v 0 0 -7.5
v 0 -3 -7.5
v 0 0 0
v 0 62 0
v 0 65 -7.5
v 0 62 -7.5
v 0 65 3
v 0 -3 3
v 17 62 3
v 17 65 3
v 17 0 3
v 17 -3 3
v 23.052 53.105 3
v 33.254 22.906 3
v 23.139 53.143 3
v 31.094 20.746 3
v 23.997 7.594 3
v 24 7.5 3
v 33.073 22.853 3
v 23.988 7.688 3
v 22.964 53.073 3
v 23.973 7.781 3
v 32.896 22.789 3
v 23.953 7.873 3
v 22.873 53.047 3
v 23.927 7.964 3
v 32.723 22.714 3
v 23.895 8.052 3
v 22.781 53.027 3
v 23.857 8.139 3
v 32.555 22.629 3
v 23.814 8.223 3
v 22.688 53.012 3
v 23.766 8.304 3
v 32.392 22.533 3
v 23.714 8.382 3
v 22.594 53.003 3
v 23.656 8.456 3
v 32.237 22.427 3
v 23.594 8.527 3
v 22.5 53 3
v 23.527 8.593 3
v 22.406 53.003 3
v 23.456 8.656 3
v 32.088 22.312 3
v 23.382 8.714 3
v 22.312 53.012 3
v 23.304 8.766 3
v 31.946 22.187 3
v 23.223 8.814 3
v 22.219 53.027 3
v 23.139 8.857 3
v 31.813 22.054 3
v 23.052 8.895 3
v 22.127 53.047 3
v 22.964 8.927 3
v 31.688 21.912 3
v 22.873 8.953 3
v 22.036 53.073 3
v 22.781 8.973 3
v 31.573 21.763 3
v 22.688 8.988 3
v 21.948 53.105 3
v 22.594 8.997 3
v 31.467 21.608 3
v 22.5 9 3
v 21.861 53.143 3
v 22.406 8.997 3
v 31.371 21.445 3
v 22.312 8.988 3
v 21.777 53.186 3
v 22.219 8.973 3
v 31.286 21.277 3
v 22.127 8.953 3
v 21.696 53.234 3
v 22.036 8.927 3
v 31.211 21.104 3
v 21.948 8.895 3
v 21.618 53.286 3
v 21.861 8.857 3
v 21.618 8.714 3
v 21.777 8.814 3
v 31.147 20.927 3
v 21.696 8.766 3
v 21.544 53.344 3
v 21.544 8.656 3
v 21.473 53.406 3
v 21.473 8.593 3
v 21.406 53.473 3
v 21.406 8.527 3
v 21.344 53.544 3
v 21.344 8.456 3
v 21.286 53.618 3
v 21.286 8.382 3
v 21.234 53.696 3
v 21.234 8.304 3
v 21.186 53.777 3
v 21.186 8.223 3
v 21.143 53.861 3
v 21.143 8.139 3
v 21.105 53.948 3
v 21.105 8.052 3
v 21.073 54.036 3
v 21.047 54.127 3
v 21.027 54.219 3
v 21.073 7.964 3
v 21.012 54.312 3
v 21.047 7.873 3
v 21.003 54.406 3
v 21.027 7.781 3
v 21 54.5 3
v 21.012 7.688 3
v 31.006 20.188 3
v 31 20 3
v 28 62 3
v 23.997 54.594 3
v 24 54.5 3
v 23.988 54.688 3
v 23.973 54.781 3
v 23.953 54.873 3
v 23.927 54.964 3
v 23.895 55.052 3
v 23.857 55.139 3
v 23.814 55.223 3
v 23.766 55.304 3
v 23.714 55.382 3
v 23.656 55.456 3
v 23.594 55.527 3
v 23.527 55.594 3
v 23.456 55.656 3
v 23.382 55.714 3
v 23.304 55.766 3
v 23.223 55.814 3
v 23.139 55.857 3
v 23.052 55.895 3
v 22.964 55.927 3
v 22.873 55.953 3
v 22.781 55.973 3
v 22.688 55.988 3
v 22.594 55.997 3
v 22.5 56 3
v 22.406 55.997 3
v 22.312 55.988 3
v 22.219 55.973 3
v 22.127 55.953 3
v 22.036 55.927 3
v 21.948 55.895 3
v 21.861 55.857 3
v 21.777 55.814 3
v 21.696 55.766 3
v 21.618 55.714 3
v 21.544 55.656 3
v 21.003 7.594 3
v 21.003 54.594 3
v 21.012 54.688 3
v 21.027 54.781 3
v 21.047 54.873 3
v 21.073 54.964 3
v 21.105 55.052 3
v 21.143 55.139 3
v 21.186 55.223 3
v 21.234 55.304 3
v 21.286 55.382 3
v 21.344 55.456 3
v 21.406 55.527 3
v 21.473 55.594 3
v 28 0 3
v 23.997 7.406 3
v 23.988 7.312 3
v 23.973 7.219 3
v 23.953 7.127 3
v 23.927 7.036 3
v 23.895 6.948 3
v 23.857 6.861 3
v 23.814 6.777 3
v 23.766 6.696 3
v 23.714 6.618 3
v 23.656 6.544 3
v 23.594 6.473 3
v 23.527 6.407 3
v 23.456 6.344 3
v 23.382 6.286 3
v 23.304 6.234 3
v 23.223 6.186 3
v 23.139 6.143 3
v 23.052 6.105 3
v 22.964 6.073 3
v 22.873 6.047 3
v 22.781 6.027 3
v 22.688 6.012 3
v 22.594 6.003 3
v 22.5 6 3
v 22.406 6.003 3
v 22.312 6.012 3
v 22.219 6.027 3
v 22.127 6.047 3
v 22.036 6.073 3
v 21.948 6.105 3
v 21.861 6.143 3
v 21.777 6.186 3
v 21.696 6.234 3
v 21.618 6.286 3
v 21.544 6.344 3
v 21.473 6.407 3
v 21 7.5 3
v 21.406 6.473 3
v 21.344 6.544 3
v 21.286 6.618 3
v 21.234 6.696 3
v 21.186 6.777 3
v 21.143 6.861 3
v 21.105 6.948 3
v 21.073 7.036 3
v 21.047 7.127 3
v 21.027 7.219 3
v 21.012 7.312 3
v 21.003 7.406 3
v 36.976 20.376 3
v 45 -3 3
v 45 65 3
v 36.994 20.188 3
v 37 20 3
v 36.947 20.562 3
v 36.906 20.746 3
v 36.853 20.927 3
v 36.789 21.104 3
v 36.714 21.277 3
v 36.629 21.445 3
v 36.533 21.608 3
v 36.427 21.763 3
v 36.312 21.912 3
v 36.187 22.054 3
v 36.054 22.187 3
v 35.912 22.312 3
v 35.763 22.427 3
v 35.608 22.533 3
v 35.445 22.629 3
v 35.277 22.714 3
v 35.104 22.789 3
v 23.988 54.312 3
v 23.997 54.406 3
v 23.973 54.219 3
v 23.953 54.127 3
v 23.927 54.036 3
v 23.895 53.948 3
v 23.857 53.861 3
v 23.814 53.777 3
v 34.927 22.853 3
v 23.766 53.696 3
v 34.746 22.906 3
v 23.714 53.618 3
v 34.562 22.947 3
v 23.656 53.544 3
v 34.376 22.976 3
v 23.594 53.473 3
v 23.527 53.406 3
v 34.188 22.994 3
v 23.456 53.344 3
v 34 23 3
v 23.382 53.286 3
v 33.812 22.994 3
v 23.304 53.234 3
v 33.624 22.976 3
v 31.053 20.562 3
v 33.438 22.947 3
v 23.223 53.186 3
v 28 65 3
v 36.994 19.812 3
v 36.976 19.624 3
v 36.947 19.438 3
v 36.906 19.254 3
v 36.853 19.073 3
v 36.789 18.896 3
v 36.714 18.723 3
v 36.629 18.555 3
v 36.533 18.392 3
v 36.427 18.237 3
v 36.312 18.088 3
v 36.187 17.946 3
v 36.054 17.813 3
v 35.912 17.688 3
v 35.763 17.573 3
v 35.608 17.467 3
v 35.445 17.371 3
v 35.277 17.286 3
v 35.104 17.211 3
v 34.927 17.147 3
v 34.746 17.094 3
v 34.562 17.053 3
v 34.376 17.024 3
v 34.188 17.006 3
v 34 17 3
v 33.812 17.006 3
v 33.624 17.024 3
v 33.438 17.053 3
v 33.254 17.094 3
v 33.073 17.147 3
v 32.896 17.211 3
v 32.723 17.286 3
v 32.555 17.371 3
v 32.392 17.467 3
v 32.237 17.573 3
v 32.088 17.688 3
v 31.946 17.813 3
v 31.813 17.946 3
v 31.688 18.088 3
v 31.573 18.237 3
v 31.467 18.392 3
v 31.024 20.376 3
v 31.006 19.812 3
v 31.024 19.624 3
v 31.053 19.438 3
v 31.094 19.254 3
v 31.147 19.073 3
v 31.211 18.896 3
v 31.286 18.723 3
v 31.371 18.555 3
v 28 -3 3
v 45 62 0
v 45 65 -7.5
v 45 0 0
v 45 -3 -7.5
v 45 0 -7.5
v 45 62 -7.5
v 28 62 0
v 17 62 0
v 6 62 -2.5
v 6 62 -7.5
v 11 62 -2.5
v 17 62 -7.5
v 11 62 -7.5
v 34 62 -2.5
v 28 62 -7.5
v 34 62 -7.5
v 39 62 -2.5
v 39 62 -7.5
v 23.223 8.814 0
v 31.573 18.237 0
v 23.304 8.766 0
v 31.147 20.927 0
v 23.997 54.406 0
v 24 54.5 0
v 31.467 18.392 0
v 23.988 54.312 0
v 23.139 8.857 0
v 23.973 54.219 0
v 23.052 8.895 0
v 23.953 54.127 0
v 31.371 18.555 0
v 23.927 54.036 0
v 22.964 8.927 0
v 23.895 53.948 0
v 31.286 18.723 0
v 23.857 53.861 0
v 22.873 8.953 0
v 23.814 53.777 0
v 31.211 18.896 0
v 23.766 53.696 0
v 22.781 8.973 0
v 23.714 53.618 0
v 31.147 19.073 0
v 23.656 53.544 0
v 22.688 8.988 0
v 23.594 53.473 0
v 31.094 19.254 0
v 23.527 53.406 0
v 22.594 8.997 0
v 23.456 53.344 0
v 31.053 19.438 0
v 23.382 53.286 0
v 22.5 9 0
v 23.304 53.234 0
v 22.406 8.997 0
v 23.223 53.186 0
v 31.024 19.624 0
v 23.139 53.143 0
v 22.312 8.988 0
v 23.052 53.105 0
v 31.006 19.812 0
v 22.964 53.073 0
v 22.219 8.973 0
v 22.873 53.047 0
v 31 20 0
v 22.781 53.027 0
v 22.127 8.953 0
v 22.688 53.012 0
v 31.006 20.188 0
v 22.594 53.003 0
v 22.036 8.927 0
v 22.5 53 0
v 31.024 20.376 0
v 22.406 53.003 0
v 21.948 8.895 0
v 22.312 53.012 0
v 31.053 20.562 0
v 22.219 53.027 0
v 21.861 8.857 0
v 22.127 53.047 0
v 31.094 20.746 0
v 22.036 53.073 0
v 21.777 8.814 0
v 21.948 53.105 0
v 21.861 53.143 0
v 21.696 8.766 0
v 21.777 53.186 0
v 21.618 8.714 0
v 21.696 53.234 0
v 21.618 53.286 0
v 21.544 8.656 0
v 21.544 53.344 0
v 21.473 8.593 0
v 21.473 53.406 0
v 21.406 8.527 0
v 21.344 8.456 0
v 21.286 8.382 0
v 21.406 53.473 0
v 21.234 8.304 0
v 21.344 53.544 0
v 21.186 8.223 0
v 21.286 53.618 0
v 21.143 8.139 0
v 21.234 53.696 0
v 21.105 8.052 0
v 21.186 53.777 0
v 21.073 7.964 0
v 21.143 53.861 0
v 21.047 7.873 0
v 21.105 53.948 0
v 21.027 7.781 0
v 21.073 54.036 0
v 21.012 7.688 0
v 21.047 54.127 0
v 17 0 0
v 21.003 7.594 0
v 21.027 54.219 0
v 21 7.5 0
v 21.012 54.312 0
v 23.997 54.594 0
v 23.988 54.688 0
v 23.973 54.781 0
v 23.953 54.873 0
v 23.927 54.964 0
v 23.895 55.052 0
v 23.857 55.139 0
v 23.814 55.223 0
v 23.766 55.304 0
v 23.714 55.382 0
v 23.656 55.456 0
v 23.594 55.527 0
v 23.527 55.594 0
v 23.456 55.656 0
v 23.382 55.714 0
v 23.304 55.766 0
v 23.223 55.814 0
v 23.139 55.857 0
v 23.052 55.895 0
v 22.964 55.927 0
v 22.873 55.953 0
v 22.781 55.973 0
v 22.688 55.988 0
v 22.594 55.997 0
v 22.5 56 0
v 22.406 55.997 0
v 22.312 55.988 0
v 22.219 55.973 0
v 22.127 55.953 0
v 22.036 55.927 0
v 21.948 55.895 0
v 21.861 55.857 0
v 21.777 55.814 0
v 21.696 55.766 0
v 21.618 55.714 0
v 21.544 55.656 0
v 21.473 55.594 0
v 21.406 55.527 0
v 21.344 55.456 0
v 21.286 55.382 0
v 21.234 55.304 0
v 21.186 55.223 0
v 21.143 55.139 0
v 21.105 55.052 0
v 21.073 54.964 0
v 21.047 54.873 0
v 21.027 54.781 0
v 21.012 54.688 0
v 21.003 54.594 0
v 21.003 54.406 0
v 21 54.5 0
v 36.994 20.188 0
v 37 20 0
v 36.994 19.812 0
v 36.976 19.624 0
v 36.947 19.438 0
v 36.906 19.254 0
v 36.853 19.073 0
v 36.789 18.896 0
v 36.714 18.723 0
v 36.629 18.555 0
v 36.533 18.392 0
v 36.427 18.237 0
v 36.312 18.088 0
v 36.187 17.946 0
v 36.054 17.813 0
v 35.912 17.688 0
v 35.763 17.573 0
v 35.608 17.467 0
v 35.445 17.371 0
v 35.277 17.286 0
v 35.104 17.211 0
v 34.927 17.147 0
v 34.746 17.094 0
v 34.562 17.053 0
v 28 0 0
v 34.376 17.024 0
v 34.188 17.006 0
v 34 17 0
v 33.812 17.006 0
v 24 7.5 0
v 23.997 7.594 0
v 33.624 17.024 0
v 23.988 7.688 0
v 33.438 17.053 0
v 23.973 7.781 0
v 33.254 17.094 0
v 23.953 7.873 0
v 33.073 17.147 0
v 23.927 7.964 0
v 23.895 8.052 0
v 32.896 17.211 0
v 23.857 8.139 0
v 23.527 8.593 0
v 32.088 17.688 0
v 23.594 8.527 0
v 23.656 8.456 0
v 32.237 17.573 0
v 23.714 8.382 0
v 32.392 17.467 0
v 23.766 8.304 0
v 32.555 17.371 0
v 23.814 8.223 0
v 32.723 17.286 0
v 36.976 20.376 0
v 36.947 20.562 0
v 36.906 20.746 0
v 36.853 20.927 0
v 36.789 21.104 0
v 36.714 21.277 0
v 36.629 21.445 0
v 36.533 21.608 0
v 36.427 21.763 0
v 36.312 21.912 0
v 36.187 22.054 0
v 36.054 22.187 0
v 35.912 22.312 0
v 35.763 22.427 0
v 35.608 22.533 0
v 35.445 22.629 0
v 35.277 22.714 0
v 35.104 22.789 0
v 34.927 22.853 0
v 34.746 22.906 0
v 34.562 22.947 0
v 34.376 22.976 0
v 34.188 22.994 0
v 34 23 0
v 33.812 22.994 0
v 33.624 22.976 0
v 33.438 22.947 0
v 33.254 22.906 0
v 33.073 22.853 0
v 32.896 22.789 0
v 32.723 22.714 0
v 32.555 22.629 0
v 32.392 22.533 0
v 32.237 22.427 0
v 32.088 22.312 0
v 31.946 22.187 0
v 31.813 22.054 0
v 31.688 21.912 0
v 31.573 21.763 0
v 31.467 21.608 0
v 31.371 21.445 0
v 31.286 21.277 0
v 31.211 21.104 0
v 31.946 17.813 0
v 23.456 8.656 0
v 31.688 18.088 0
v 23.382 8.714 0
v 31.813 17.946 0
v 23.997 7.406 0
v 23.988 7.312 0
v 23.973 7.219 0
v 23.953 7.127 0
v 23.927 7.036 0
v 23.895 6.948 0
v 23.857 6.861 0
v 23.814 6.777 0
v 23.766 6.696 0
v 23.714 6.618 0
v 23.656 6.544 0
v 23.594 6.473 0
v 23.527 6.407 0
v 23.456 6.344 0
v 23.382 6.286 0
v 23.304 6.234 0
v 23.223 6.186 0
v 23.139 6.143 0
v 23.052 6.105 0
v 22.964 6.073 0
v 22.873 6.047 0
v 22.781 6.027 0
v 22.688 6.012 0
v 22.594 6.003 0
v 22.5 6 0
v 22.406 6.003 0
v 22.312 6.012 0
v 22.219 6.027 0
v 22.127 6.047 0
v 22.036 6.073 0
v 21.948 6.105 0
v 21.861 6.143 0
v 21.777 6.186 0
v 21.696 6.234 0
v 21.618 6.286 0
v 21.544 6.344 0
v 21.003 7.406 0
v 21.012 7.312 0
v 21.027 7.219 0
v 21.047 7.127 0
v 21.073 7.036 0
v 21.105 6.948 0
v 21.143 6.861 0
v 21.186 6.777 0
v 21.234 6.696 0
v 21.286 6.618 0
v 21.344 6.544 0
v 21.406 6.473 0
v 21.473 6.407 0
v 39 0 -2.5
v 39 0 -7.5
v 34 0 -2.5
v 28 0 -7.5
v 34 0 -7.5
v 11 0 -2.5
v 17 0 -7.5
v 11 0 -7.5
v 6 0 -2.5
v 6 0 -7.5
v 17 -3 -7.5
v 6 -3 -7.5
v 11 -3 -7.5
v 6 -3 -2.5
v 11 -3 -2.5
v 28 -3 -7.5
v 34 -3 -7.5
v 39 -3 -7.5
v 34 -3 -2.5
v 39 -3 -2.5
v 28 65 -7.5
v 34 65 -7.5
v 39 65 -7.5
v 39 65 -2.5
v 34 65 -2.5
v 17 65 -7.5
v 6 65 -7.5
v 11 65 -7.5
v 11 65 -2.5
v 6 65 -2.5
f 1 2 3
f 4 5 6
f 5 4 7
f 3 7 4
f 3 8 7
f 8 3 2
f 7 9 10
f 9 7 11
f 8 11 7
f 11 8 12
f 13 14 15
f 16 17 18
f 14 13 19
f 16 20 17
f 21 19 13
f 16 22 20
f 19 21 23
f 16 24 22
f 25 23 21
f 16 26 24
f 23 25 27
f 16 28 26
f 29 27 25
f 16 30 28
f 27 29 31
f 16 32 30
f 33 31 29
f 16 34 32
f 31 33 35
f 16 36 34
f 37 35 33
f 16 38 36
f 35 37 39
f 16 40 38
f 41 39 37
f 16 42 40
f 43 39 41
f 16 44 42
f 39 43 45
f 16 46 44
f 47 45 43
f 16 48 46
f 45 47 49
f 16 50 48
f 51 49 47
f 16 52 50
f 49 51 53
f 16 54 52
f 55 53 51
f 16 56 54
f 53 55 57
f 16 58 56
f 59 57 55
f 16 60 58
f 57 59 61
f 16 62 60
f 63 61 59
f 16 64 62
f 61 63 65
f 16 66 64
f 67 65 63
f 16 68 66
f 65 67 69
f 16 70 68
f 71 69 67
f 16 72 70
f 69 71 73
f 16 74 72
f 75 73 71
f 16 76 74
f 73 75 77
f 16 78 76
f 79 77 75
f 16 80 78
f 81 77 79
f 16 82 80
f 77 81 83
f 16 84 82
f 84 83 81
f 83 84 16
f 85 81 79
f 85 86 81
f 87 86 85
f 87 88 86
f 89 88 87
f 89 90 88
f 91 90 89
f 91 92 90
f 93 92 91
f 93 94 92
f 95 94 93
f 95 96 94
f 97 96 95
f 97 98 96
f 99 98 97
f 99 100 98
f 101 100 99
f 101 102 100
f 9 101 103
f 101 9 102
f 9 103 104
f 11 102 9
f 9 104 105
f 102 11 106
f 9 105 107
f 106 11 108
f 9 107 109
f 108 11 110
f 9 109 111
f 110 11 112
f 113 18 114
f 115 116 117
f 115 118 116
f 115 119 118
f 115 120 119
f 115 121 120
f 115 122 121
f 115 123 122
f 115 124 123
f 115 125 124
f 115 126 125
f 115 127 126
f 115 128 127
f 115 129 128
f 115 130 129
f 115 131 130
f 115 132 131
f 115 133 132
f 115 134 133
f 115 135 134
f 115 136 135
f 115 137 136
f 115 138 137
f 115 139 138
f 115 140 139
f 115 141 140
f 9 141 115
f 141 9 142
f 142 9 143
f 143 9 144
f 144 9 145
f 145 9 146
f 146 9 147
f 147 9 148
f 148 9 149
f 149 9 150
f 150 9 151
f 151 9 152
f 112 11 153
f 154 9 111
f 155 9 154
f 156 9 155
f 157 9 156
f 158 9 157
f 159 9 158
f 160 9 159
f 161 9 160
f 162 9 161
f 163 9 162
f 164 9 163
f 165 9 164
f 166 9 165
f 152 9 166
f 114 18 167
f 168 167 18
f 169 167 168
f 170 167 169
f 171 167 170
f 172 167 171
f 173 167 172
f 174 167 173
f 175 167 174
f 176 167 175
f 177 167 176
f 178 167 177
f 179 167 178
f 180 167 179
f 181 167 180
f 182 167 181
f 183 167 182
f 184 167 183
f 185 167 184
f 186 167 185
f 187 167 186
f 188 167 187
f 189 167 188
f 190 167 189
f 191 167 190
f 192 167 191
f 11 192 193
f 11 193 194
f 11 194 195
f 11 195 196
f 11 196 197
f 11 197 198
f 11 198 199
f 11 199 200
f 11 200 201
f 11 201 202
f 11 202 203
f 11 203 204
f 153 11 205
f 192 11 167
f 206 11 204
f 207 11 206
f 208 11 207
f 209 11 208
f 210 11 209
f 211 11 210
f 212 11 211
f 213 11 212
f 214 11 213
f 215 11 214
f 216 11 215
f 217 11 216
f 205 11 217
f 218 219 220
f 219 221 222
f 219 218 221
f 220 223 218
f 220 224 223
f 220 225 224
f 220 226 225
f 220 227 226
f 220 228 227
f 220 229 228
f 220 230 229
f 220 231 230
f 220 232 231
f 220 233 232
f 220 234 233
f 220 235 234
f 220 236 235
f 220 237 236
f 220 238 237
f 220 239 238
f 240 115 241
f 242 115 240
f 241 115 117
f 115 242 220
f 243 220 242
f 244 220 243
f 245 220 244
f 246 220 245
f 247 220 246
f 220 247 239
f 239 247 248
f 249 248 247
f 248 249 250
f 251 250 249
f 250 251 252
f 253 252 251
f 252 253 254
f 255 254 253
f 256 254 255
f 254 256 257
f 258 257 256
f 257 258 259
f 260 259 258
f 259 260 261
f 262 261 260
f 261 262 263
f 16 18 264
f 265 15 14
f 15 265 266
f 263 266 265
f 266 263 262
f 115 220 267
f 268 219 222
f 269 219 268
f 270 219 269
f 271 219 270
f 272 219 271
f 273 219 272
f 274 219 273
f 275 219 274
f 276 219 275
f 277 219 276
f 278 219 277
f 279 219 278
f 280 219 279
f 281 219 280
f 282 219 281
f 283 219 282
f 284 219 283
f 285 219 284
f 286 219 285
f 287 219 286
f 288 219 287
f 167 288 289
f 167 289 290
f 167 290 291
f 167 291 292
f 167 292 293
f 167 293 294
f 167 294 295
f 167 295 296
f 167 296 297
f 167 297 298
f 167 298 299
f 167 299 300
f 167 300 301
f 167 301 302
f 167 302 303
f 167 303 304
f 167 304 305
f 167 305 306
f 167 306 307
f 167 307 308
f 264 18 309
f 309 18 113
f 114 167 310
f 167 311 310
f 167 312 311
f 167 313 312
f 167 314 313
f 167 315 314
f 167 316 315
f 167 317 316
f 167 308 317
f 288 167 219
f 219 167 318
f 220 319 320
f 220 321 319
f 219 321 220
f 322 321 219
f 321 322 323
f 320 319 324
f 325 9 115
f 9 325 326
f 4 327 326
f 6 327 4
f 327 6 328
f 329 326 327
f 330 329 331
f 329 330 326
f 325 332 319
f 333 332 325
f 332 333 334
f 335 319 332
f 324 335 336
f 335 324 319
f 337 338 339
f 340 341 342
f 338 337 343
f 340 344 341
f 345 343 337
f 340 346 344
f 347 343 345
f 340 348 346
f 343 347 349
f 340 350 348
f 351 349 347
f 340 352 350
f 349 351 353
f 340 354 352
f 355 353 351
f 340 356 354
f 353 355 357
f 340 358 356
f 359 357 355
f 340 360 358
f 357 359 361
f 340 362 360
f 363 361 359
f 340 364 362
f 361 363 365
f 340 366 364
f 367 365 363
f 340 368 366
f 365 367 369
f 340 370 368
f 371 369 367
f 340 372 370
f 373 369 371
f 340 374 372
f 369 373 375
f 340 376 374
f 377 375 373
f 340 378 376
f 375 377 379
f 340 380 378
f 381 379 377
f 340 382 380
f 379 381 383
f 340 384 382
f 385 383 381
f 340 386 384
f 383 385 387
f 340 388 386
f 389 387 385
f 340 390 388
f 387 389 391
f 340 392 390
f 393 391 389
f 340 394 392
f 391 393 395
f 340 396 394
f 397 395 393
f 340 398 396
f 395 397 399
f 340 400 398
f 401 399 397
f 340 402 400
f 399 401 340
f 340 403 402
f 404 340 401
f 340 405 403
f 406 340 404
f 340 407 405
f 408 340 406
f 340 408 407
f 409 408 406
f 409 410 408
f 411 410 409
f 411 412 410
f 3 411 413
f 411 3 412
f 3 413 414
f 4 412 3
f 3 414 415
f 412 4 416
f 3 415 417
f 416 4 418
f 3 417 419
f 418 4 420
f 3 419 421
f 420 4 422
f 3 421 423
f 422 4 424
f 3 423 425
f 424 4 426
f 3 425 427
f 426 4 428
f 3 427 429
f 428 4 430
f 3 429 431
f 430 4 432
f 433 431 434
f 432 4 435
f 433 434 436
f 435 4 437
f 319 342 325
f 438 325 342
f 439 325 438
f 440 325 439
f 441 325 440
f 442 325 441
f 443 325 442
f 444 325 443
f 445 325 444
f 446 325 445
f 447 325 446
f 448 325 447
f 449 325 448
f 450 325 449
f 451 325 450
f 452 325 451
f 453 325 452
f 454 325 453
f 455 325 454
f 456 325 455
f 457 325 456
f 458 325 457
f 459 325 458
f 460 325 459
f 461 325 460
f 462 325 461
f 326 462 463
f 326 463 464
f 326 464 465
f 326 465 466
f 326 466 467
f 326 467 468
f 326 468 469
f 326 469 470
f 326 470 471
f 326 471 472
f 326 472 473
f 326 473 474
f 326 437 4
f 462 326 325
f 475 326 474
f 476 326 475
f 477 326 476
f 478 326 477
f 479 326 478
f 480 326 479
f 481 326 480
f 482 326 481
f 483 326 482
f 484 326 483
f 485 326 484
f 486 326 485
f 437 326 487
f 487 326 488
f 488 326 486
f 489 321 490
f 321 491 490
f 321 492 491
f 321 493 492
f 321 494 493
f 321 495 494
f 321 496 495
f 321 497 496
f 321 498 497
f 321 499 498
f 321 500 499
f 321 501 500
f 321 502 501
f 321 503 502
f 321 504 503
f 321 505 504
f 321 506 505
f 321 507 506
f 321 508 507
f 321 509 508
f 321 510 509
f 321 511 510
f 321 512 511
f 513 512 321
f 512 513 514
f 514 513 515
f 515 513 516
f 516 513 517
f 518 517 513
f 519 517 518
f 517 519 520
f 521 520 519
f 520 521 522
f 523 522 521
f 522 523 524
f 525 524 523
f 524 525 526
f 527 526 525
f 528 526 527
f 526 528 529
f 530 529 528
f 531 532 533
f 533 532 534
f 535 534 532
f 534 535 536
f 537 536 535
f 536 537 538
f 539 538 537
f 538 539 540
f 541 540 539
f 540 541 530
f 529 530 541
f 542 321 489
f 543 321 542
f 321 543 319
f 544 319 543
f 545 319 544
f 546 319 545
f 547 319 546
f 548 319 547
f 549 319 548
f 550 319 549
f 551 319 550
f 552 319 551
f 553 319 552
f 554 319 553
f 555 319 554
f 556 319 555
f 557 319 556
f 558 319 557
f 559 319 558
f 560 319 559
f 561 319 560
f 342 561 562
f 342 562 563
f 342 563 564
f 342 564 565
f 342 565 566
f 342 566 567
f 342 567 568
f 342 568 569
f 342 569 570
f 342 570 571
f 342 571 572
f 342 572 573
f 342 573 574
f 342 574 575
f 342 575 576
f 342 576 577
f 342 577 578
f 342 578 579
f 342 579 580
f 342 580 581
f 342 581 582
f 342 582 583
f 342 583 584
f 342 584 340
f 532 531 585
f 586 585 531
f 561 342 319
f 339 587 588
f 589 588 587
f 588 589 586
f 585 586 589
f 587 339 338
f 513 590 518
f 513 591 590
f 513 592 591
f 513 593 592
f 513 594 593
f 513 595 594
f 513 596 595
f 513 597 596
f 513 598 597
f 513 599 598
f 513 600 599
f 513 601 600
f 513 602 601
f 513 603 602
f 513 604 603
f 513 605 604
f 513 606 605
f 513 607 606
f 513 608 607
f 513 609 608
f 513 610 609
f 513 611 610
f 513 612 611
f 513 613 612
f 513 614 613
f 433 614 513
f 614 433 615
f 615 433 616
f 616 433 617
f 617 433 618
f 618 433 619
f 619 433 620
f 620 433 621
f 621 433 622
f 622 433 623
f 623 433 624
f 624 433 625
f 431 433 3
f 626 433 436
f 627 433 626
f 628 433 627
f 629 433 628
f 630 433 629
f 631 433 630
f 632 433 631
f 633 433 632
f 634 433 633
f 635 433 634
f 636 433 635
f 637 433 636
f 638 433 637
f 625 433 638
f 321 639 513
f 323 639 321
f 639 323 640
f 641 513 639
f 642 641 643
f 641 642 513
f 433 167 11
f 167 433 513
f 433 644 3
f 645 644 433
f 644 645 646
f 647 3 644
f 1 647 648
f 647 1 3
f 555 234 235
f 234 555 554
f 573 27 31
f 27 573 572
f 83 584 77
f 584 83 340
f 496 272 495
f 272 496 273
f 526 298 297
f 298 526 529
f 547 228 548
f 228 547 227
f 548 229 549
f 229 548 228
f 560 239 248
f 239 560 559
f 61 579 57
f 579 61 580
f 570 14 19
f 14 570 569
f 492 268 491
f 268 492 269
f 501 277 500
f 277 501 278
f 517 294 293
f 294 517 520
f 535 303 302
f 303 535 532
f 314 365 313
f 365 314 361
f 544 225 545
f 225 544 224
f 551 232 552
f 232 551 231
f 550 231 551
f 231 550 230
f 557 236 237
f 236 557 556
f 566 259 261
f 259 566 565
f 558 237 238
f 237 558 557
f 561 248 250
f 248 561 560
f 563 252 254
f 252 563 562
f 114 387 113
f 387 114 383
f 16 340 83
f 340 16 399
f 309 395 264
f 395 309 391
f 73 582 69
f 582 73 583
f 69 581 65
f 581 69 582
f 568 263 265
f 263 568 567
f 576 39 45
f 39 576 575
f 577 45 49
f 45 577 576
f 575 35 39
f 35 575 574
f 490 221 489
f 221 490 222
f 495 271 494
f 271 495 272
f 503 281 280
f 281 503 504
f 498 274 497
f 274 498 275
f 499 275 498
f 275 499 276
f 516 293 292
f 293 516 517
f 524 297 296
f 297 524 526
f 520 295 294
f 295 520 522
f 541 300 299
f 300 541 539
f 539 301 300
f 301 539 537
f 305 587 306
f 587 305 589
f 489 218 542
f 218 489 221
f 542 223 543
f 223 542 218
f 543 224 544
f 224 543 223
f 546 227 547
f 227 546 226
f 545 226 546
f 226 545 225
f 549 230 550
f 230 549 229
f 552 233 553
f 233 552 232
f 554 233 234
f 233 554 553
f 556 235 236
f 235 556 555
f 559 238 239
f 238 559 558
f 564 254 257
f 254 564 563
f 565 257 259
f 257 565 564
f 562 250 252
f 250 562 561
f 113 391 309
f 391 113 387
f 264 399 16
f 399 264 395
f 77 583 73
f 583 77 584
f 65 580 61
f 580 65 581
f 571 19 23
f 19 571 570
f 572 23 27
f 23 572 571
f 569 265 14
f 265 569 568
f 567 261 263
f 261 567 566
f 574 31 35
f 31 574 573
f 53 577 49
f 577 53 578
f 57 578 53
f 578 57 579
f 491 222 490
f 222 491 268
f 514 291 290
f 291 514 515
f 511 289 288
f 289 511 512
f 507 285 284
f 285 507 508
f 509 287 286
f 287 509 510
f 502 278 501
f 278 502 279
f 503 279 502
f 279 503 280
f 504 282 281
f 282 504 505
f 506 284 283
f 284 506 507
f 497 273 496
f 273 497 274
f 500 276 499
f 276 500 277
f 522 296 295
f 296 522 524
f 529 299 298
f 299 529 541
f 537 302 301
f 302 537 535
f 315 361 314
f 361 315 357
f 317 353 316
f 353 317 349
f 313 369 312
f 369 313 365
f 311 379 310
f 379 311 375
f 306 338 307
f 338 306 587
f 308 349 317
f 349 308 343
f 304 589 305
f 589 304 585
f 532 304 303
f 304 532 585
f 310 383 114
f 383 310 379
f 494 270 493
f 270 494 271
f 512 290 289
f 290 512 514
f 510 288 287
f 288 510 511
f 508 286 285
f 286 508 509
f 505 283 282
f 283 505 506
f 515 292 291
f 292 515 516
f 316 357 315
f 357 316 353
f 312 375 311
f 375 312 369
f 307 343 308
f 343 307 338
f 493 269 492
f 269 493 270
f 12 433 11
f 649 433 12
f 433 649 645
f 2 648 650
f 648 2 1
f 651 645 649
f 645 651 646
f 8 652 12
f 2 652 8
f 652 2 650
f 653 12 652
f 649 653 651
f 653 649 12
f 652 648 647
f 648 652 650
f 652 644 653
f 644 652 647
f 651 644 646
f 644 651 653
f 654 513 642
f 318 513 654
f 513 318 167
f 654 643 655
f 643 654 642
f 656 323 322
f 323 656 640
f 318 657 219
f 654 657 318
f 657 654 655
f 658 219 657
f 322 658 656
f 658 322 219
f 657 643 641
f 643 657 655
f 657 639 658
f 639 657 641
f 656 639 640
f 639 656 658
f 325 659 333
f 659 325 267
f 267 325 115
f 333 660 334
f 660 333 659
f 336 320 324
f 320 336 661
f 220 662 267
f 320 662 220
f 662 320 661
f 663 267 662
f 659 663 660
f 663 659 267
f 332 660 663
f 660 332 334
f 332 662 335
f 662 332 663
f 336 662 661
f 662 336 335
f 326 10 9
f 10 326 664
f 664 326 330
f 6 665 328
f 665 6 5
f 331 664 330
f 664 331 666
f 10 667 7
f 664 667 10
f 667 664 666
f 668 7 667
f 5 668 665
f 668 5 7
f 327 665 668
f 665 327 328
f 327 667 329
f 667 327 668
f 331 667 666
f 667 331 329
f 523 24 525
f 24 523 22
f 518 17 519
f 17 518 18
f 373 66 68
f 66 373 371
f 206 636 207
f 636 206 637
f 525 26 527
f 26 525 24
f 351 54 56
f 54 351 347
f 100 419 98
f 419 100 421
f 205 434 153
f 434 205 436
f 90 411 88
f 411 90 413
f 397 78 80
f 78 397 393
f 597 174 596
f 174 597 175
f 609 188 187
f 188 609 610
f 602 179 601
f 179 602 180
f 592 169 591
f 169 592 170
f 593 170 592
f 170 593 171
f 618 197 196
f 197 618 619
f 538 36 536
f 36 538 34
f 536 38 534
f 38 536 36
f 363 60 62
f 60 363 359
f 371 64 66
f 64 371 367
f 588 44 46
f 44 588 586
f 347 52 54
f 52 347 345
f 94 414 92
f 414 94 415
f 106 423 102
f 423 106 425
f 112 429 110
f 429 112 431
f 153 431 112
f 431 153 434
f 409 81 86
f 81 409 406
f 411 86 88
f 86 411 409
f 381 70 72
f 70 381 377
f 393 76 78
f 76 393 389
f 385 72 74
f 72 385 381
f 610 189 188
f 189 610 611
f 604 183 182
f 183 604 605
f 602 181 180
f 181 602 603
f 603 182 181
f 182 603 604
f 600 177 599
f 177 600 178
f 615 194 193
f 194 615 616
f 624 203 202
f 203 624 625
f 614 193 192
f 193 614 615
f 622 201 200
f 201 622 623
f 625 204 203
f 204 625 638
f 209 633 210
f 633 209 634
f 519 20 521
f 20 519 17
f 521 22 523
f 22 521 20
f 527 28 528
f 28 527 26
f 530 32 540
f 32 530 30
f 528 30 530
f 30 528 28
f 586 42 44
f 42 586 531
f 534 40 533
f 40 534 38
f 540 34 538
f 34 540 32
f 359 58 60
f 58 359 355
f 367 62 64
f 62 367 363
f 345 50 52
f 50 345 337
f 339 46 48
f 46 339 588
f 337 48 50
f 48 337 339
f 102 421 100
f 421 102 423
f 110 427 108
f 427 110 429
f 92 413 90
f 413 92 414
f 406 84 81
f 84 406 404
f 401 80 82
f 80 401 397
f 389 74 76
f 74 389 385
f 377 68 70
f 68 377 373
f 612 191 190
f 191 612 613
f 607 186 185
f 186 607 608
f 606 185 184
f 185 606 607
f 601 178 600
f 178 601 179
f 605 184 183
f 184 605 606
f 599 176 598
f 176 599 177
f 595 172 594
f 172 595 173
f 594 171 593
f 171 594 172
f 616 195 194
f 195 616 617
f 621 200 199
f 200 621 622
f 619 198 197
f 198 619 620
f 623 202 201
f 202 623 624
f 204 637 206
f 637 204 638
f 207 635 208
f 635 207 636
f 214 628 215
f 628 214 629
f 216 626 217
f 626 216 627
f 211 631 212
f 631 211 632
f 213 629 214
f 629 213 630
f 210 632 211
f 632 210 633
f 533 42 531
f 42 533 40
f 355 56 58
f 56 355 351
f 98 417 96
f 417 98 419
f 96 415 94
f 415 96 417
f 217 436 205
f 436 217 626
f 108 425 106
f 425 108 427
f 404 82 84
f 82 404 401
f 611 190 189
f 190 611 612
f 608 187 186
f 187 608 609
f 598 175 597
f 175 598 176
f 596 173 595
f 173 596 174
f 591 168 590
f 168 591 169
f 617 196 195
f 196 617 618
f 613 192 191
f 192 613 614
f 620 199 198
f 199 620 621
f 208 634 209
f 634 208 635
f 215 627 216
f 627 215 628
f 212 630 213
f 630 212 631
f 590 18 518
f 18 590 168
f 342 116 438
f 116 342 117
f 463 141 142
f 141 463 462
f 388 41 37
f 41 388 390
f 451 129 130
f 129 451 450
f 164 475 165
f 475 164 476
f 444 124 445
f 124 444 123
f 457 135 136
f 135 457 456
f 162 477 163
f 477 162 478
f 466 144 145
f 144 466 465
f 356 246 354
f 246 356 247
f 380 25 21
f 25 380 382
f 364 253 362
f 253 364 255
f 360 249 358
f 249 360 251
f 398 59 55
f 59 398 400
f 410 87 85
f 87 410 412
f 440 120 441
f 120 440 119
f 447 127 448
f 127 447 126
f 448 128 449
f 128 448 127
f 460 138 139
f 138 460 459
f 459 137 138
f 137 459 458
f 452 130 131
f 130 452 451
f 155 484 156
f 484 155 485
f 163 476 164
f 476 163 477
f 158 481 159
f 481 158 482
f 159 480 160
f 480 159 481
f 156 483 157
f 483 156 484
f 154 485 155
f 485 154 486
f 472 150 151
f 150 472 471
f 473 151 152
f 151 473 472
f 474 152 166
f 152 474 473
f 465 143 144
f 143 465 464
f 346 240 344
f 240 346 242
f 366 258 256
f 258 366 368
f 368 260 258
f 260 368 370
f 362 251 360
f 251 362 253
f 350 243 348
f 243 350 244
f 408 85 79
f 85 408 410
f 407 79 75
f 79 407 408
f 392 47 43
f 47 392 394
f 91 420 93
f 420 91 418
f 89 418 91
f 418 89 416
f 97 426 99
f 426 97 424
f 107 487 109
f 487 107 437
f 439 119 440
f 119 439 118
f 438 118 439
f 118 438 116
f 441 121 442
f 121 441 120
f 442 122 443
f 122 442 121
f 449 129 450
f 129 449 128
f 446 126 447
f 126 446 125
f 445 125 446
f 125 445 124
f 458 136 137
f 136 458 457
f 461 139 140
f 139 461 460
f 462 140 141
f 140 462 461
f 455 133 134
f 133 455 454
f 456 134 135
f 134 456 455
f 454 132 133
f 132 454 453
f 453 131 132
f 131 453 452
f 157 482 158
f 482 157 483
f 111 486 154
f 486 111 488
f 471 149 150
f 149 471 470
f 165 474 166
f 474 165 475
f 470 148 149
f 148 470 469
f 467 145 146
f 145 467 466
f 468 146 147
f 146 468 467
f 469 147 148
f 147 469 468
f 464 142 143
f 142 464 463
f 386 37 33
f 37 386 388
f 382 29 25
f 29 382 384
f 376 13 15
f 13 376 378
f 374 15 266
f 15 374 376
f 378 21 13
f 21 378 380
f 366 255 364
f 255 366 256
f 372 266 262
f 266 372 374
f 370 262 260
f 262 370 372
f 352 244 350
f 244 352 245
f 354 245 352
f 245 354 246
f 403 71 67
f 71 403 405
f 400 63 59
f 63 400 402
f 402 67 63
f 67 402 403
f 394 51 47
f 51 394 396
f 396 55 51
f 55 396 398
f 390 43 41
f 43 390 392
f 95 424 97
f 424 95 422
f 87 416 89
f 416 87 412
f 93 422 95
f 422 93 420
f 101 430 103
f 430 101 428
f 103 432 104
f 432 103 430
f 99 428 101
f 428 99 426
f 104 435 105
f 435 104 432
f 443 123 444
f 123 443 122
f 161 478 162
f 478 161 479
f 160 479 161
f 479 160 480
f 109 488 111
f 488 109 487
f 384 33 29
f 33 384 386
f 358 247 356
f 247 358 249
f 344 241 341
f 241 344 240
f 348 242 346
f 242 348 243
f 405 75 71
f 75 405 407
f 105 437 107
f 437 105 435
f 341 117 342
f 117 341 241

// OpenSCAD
/*------------------------ Parameters ------------------------*/
length = 62; 
width = 45; // actual dimension is 60mm, just added wiggle room 
thickness = 3; 

light_port_width = 3;

screw_base_container_width = 17;
screw_base_container_height = 7.50;

screw_port_width = 5; 
screw_port_height = 5;

mount_width = 1.5;
mount_offset = 7.5;

/*------------------------ Prototpyes ------------------------*/
ssr_plate();

/*------------------------ Modules ------------------------*/
module ssr_plate() {
    difference() {
        union() {
            bottom();
            connection_protector();
            translate([width - screw_base_container_width, 0, 0]) {
                connection_protector();
            }
            translate([width - screw_base_container_width, length+thickness, 0]) {
                connection_protector();
            }
            translate([0, length+thickness, 0]) {
                connection_protector();
            }
        }
        translate([width/2, mount_offset, 0]) {
            cylinder(thickness, mount_width, mount_width, $fn=100);
        }
        translate([width/2, length - mount_offset, 0]) {
            cylinder(thickness, mount_width, mount_width, $fn=100);
        }    
    }
}

module bottom() {
    difference() {
        cube([width, length, thickness]);
        translate([34,20,0]) {
            cylinder(thickness, light_port_width, light_port_width, $fn=100); // cutout for the signal led
        }
    }
}

// centered: 4th Quadrent
module connection_protector() {
    difference() {
        translate([0, -thickness, -screw_base_container_height]) {
            cube([screw_base_container_width, thickness, screw_base_container_height + thickness]);
        }
        screw_terminal_cutout();
    }
    
}

module screw_terminal_cutout() {
    translate([(screw_base_container_width -screw_port_width)/2, -thickness, -screw_base_container_height]) {
        cube([screw_port_width, thickness, screw_port_height]);
    }
}
